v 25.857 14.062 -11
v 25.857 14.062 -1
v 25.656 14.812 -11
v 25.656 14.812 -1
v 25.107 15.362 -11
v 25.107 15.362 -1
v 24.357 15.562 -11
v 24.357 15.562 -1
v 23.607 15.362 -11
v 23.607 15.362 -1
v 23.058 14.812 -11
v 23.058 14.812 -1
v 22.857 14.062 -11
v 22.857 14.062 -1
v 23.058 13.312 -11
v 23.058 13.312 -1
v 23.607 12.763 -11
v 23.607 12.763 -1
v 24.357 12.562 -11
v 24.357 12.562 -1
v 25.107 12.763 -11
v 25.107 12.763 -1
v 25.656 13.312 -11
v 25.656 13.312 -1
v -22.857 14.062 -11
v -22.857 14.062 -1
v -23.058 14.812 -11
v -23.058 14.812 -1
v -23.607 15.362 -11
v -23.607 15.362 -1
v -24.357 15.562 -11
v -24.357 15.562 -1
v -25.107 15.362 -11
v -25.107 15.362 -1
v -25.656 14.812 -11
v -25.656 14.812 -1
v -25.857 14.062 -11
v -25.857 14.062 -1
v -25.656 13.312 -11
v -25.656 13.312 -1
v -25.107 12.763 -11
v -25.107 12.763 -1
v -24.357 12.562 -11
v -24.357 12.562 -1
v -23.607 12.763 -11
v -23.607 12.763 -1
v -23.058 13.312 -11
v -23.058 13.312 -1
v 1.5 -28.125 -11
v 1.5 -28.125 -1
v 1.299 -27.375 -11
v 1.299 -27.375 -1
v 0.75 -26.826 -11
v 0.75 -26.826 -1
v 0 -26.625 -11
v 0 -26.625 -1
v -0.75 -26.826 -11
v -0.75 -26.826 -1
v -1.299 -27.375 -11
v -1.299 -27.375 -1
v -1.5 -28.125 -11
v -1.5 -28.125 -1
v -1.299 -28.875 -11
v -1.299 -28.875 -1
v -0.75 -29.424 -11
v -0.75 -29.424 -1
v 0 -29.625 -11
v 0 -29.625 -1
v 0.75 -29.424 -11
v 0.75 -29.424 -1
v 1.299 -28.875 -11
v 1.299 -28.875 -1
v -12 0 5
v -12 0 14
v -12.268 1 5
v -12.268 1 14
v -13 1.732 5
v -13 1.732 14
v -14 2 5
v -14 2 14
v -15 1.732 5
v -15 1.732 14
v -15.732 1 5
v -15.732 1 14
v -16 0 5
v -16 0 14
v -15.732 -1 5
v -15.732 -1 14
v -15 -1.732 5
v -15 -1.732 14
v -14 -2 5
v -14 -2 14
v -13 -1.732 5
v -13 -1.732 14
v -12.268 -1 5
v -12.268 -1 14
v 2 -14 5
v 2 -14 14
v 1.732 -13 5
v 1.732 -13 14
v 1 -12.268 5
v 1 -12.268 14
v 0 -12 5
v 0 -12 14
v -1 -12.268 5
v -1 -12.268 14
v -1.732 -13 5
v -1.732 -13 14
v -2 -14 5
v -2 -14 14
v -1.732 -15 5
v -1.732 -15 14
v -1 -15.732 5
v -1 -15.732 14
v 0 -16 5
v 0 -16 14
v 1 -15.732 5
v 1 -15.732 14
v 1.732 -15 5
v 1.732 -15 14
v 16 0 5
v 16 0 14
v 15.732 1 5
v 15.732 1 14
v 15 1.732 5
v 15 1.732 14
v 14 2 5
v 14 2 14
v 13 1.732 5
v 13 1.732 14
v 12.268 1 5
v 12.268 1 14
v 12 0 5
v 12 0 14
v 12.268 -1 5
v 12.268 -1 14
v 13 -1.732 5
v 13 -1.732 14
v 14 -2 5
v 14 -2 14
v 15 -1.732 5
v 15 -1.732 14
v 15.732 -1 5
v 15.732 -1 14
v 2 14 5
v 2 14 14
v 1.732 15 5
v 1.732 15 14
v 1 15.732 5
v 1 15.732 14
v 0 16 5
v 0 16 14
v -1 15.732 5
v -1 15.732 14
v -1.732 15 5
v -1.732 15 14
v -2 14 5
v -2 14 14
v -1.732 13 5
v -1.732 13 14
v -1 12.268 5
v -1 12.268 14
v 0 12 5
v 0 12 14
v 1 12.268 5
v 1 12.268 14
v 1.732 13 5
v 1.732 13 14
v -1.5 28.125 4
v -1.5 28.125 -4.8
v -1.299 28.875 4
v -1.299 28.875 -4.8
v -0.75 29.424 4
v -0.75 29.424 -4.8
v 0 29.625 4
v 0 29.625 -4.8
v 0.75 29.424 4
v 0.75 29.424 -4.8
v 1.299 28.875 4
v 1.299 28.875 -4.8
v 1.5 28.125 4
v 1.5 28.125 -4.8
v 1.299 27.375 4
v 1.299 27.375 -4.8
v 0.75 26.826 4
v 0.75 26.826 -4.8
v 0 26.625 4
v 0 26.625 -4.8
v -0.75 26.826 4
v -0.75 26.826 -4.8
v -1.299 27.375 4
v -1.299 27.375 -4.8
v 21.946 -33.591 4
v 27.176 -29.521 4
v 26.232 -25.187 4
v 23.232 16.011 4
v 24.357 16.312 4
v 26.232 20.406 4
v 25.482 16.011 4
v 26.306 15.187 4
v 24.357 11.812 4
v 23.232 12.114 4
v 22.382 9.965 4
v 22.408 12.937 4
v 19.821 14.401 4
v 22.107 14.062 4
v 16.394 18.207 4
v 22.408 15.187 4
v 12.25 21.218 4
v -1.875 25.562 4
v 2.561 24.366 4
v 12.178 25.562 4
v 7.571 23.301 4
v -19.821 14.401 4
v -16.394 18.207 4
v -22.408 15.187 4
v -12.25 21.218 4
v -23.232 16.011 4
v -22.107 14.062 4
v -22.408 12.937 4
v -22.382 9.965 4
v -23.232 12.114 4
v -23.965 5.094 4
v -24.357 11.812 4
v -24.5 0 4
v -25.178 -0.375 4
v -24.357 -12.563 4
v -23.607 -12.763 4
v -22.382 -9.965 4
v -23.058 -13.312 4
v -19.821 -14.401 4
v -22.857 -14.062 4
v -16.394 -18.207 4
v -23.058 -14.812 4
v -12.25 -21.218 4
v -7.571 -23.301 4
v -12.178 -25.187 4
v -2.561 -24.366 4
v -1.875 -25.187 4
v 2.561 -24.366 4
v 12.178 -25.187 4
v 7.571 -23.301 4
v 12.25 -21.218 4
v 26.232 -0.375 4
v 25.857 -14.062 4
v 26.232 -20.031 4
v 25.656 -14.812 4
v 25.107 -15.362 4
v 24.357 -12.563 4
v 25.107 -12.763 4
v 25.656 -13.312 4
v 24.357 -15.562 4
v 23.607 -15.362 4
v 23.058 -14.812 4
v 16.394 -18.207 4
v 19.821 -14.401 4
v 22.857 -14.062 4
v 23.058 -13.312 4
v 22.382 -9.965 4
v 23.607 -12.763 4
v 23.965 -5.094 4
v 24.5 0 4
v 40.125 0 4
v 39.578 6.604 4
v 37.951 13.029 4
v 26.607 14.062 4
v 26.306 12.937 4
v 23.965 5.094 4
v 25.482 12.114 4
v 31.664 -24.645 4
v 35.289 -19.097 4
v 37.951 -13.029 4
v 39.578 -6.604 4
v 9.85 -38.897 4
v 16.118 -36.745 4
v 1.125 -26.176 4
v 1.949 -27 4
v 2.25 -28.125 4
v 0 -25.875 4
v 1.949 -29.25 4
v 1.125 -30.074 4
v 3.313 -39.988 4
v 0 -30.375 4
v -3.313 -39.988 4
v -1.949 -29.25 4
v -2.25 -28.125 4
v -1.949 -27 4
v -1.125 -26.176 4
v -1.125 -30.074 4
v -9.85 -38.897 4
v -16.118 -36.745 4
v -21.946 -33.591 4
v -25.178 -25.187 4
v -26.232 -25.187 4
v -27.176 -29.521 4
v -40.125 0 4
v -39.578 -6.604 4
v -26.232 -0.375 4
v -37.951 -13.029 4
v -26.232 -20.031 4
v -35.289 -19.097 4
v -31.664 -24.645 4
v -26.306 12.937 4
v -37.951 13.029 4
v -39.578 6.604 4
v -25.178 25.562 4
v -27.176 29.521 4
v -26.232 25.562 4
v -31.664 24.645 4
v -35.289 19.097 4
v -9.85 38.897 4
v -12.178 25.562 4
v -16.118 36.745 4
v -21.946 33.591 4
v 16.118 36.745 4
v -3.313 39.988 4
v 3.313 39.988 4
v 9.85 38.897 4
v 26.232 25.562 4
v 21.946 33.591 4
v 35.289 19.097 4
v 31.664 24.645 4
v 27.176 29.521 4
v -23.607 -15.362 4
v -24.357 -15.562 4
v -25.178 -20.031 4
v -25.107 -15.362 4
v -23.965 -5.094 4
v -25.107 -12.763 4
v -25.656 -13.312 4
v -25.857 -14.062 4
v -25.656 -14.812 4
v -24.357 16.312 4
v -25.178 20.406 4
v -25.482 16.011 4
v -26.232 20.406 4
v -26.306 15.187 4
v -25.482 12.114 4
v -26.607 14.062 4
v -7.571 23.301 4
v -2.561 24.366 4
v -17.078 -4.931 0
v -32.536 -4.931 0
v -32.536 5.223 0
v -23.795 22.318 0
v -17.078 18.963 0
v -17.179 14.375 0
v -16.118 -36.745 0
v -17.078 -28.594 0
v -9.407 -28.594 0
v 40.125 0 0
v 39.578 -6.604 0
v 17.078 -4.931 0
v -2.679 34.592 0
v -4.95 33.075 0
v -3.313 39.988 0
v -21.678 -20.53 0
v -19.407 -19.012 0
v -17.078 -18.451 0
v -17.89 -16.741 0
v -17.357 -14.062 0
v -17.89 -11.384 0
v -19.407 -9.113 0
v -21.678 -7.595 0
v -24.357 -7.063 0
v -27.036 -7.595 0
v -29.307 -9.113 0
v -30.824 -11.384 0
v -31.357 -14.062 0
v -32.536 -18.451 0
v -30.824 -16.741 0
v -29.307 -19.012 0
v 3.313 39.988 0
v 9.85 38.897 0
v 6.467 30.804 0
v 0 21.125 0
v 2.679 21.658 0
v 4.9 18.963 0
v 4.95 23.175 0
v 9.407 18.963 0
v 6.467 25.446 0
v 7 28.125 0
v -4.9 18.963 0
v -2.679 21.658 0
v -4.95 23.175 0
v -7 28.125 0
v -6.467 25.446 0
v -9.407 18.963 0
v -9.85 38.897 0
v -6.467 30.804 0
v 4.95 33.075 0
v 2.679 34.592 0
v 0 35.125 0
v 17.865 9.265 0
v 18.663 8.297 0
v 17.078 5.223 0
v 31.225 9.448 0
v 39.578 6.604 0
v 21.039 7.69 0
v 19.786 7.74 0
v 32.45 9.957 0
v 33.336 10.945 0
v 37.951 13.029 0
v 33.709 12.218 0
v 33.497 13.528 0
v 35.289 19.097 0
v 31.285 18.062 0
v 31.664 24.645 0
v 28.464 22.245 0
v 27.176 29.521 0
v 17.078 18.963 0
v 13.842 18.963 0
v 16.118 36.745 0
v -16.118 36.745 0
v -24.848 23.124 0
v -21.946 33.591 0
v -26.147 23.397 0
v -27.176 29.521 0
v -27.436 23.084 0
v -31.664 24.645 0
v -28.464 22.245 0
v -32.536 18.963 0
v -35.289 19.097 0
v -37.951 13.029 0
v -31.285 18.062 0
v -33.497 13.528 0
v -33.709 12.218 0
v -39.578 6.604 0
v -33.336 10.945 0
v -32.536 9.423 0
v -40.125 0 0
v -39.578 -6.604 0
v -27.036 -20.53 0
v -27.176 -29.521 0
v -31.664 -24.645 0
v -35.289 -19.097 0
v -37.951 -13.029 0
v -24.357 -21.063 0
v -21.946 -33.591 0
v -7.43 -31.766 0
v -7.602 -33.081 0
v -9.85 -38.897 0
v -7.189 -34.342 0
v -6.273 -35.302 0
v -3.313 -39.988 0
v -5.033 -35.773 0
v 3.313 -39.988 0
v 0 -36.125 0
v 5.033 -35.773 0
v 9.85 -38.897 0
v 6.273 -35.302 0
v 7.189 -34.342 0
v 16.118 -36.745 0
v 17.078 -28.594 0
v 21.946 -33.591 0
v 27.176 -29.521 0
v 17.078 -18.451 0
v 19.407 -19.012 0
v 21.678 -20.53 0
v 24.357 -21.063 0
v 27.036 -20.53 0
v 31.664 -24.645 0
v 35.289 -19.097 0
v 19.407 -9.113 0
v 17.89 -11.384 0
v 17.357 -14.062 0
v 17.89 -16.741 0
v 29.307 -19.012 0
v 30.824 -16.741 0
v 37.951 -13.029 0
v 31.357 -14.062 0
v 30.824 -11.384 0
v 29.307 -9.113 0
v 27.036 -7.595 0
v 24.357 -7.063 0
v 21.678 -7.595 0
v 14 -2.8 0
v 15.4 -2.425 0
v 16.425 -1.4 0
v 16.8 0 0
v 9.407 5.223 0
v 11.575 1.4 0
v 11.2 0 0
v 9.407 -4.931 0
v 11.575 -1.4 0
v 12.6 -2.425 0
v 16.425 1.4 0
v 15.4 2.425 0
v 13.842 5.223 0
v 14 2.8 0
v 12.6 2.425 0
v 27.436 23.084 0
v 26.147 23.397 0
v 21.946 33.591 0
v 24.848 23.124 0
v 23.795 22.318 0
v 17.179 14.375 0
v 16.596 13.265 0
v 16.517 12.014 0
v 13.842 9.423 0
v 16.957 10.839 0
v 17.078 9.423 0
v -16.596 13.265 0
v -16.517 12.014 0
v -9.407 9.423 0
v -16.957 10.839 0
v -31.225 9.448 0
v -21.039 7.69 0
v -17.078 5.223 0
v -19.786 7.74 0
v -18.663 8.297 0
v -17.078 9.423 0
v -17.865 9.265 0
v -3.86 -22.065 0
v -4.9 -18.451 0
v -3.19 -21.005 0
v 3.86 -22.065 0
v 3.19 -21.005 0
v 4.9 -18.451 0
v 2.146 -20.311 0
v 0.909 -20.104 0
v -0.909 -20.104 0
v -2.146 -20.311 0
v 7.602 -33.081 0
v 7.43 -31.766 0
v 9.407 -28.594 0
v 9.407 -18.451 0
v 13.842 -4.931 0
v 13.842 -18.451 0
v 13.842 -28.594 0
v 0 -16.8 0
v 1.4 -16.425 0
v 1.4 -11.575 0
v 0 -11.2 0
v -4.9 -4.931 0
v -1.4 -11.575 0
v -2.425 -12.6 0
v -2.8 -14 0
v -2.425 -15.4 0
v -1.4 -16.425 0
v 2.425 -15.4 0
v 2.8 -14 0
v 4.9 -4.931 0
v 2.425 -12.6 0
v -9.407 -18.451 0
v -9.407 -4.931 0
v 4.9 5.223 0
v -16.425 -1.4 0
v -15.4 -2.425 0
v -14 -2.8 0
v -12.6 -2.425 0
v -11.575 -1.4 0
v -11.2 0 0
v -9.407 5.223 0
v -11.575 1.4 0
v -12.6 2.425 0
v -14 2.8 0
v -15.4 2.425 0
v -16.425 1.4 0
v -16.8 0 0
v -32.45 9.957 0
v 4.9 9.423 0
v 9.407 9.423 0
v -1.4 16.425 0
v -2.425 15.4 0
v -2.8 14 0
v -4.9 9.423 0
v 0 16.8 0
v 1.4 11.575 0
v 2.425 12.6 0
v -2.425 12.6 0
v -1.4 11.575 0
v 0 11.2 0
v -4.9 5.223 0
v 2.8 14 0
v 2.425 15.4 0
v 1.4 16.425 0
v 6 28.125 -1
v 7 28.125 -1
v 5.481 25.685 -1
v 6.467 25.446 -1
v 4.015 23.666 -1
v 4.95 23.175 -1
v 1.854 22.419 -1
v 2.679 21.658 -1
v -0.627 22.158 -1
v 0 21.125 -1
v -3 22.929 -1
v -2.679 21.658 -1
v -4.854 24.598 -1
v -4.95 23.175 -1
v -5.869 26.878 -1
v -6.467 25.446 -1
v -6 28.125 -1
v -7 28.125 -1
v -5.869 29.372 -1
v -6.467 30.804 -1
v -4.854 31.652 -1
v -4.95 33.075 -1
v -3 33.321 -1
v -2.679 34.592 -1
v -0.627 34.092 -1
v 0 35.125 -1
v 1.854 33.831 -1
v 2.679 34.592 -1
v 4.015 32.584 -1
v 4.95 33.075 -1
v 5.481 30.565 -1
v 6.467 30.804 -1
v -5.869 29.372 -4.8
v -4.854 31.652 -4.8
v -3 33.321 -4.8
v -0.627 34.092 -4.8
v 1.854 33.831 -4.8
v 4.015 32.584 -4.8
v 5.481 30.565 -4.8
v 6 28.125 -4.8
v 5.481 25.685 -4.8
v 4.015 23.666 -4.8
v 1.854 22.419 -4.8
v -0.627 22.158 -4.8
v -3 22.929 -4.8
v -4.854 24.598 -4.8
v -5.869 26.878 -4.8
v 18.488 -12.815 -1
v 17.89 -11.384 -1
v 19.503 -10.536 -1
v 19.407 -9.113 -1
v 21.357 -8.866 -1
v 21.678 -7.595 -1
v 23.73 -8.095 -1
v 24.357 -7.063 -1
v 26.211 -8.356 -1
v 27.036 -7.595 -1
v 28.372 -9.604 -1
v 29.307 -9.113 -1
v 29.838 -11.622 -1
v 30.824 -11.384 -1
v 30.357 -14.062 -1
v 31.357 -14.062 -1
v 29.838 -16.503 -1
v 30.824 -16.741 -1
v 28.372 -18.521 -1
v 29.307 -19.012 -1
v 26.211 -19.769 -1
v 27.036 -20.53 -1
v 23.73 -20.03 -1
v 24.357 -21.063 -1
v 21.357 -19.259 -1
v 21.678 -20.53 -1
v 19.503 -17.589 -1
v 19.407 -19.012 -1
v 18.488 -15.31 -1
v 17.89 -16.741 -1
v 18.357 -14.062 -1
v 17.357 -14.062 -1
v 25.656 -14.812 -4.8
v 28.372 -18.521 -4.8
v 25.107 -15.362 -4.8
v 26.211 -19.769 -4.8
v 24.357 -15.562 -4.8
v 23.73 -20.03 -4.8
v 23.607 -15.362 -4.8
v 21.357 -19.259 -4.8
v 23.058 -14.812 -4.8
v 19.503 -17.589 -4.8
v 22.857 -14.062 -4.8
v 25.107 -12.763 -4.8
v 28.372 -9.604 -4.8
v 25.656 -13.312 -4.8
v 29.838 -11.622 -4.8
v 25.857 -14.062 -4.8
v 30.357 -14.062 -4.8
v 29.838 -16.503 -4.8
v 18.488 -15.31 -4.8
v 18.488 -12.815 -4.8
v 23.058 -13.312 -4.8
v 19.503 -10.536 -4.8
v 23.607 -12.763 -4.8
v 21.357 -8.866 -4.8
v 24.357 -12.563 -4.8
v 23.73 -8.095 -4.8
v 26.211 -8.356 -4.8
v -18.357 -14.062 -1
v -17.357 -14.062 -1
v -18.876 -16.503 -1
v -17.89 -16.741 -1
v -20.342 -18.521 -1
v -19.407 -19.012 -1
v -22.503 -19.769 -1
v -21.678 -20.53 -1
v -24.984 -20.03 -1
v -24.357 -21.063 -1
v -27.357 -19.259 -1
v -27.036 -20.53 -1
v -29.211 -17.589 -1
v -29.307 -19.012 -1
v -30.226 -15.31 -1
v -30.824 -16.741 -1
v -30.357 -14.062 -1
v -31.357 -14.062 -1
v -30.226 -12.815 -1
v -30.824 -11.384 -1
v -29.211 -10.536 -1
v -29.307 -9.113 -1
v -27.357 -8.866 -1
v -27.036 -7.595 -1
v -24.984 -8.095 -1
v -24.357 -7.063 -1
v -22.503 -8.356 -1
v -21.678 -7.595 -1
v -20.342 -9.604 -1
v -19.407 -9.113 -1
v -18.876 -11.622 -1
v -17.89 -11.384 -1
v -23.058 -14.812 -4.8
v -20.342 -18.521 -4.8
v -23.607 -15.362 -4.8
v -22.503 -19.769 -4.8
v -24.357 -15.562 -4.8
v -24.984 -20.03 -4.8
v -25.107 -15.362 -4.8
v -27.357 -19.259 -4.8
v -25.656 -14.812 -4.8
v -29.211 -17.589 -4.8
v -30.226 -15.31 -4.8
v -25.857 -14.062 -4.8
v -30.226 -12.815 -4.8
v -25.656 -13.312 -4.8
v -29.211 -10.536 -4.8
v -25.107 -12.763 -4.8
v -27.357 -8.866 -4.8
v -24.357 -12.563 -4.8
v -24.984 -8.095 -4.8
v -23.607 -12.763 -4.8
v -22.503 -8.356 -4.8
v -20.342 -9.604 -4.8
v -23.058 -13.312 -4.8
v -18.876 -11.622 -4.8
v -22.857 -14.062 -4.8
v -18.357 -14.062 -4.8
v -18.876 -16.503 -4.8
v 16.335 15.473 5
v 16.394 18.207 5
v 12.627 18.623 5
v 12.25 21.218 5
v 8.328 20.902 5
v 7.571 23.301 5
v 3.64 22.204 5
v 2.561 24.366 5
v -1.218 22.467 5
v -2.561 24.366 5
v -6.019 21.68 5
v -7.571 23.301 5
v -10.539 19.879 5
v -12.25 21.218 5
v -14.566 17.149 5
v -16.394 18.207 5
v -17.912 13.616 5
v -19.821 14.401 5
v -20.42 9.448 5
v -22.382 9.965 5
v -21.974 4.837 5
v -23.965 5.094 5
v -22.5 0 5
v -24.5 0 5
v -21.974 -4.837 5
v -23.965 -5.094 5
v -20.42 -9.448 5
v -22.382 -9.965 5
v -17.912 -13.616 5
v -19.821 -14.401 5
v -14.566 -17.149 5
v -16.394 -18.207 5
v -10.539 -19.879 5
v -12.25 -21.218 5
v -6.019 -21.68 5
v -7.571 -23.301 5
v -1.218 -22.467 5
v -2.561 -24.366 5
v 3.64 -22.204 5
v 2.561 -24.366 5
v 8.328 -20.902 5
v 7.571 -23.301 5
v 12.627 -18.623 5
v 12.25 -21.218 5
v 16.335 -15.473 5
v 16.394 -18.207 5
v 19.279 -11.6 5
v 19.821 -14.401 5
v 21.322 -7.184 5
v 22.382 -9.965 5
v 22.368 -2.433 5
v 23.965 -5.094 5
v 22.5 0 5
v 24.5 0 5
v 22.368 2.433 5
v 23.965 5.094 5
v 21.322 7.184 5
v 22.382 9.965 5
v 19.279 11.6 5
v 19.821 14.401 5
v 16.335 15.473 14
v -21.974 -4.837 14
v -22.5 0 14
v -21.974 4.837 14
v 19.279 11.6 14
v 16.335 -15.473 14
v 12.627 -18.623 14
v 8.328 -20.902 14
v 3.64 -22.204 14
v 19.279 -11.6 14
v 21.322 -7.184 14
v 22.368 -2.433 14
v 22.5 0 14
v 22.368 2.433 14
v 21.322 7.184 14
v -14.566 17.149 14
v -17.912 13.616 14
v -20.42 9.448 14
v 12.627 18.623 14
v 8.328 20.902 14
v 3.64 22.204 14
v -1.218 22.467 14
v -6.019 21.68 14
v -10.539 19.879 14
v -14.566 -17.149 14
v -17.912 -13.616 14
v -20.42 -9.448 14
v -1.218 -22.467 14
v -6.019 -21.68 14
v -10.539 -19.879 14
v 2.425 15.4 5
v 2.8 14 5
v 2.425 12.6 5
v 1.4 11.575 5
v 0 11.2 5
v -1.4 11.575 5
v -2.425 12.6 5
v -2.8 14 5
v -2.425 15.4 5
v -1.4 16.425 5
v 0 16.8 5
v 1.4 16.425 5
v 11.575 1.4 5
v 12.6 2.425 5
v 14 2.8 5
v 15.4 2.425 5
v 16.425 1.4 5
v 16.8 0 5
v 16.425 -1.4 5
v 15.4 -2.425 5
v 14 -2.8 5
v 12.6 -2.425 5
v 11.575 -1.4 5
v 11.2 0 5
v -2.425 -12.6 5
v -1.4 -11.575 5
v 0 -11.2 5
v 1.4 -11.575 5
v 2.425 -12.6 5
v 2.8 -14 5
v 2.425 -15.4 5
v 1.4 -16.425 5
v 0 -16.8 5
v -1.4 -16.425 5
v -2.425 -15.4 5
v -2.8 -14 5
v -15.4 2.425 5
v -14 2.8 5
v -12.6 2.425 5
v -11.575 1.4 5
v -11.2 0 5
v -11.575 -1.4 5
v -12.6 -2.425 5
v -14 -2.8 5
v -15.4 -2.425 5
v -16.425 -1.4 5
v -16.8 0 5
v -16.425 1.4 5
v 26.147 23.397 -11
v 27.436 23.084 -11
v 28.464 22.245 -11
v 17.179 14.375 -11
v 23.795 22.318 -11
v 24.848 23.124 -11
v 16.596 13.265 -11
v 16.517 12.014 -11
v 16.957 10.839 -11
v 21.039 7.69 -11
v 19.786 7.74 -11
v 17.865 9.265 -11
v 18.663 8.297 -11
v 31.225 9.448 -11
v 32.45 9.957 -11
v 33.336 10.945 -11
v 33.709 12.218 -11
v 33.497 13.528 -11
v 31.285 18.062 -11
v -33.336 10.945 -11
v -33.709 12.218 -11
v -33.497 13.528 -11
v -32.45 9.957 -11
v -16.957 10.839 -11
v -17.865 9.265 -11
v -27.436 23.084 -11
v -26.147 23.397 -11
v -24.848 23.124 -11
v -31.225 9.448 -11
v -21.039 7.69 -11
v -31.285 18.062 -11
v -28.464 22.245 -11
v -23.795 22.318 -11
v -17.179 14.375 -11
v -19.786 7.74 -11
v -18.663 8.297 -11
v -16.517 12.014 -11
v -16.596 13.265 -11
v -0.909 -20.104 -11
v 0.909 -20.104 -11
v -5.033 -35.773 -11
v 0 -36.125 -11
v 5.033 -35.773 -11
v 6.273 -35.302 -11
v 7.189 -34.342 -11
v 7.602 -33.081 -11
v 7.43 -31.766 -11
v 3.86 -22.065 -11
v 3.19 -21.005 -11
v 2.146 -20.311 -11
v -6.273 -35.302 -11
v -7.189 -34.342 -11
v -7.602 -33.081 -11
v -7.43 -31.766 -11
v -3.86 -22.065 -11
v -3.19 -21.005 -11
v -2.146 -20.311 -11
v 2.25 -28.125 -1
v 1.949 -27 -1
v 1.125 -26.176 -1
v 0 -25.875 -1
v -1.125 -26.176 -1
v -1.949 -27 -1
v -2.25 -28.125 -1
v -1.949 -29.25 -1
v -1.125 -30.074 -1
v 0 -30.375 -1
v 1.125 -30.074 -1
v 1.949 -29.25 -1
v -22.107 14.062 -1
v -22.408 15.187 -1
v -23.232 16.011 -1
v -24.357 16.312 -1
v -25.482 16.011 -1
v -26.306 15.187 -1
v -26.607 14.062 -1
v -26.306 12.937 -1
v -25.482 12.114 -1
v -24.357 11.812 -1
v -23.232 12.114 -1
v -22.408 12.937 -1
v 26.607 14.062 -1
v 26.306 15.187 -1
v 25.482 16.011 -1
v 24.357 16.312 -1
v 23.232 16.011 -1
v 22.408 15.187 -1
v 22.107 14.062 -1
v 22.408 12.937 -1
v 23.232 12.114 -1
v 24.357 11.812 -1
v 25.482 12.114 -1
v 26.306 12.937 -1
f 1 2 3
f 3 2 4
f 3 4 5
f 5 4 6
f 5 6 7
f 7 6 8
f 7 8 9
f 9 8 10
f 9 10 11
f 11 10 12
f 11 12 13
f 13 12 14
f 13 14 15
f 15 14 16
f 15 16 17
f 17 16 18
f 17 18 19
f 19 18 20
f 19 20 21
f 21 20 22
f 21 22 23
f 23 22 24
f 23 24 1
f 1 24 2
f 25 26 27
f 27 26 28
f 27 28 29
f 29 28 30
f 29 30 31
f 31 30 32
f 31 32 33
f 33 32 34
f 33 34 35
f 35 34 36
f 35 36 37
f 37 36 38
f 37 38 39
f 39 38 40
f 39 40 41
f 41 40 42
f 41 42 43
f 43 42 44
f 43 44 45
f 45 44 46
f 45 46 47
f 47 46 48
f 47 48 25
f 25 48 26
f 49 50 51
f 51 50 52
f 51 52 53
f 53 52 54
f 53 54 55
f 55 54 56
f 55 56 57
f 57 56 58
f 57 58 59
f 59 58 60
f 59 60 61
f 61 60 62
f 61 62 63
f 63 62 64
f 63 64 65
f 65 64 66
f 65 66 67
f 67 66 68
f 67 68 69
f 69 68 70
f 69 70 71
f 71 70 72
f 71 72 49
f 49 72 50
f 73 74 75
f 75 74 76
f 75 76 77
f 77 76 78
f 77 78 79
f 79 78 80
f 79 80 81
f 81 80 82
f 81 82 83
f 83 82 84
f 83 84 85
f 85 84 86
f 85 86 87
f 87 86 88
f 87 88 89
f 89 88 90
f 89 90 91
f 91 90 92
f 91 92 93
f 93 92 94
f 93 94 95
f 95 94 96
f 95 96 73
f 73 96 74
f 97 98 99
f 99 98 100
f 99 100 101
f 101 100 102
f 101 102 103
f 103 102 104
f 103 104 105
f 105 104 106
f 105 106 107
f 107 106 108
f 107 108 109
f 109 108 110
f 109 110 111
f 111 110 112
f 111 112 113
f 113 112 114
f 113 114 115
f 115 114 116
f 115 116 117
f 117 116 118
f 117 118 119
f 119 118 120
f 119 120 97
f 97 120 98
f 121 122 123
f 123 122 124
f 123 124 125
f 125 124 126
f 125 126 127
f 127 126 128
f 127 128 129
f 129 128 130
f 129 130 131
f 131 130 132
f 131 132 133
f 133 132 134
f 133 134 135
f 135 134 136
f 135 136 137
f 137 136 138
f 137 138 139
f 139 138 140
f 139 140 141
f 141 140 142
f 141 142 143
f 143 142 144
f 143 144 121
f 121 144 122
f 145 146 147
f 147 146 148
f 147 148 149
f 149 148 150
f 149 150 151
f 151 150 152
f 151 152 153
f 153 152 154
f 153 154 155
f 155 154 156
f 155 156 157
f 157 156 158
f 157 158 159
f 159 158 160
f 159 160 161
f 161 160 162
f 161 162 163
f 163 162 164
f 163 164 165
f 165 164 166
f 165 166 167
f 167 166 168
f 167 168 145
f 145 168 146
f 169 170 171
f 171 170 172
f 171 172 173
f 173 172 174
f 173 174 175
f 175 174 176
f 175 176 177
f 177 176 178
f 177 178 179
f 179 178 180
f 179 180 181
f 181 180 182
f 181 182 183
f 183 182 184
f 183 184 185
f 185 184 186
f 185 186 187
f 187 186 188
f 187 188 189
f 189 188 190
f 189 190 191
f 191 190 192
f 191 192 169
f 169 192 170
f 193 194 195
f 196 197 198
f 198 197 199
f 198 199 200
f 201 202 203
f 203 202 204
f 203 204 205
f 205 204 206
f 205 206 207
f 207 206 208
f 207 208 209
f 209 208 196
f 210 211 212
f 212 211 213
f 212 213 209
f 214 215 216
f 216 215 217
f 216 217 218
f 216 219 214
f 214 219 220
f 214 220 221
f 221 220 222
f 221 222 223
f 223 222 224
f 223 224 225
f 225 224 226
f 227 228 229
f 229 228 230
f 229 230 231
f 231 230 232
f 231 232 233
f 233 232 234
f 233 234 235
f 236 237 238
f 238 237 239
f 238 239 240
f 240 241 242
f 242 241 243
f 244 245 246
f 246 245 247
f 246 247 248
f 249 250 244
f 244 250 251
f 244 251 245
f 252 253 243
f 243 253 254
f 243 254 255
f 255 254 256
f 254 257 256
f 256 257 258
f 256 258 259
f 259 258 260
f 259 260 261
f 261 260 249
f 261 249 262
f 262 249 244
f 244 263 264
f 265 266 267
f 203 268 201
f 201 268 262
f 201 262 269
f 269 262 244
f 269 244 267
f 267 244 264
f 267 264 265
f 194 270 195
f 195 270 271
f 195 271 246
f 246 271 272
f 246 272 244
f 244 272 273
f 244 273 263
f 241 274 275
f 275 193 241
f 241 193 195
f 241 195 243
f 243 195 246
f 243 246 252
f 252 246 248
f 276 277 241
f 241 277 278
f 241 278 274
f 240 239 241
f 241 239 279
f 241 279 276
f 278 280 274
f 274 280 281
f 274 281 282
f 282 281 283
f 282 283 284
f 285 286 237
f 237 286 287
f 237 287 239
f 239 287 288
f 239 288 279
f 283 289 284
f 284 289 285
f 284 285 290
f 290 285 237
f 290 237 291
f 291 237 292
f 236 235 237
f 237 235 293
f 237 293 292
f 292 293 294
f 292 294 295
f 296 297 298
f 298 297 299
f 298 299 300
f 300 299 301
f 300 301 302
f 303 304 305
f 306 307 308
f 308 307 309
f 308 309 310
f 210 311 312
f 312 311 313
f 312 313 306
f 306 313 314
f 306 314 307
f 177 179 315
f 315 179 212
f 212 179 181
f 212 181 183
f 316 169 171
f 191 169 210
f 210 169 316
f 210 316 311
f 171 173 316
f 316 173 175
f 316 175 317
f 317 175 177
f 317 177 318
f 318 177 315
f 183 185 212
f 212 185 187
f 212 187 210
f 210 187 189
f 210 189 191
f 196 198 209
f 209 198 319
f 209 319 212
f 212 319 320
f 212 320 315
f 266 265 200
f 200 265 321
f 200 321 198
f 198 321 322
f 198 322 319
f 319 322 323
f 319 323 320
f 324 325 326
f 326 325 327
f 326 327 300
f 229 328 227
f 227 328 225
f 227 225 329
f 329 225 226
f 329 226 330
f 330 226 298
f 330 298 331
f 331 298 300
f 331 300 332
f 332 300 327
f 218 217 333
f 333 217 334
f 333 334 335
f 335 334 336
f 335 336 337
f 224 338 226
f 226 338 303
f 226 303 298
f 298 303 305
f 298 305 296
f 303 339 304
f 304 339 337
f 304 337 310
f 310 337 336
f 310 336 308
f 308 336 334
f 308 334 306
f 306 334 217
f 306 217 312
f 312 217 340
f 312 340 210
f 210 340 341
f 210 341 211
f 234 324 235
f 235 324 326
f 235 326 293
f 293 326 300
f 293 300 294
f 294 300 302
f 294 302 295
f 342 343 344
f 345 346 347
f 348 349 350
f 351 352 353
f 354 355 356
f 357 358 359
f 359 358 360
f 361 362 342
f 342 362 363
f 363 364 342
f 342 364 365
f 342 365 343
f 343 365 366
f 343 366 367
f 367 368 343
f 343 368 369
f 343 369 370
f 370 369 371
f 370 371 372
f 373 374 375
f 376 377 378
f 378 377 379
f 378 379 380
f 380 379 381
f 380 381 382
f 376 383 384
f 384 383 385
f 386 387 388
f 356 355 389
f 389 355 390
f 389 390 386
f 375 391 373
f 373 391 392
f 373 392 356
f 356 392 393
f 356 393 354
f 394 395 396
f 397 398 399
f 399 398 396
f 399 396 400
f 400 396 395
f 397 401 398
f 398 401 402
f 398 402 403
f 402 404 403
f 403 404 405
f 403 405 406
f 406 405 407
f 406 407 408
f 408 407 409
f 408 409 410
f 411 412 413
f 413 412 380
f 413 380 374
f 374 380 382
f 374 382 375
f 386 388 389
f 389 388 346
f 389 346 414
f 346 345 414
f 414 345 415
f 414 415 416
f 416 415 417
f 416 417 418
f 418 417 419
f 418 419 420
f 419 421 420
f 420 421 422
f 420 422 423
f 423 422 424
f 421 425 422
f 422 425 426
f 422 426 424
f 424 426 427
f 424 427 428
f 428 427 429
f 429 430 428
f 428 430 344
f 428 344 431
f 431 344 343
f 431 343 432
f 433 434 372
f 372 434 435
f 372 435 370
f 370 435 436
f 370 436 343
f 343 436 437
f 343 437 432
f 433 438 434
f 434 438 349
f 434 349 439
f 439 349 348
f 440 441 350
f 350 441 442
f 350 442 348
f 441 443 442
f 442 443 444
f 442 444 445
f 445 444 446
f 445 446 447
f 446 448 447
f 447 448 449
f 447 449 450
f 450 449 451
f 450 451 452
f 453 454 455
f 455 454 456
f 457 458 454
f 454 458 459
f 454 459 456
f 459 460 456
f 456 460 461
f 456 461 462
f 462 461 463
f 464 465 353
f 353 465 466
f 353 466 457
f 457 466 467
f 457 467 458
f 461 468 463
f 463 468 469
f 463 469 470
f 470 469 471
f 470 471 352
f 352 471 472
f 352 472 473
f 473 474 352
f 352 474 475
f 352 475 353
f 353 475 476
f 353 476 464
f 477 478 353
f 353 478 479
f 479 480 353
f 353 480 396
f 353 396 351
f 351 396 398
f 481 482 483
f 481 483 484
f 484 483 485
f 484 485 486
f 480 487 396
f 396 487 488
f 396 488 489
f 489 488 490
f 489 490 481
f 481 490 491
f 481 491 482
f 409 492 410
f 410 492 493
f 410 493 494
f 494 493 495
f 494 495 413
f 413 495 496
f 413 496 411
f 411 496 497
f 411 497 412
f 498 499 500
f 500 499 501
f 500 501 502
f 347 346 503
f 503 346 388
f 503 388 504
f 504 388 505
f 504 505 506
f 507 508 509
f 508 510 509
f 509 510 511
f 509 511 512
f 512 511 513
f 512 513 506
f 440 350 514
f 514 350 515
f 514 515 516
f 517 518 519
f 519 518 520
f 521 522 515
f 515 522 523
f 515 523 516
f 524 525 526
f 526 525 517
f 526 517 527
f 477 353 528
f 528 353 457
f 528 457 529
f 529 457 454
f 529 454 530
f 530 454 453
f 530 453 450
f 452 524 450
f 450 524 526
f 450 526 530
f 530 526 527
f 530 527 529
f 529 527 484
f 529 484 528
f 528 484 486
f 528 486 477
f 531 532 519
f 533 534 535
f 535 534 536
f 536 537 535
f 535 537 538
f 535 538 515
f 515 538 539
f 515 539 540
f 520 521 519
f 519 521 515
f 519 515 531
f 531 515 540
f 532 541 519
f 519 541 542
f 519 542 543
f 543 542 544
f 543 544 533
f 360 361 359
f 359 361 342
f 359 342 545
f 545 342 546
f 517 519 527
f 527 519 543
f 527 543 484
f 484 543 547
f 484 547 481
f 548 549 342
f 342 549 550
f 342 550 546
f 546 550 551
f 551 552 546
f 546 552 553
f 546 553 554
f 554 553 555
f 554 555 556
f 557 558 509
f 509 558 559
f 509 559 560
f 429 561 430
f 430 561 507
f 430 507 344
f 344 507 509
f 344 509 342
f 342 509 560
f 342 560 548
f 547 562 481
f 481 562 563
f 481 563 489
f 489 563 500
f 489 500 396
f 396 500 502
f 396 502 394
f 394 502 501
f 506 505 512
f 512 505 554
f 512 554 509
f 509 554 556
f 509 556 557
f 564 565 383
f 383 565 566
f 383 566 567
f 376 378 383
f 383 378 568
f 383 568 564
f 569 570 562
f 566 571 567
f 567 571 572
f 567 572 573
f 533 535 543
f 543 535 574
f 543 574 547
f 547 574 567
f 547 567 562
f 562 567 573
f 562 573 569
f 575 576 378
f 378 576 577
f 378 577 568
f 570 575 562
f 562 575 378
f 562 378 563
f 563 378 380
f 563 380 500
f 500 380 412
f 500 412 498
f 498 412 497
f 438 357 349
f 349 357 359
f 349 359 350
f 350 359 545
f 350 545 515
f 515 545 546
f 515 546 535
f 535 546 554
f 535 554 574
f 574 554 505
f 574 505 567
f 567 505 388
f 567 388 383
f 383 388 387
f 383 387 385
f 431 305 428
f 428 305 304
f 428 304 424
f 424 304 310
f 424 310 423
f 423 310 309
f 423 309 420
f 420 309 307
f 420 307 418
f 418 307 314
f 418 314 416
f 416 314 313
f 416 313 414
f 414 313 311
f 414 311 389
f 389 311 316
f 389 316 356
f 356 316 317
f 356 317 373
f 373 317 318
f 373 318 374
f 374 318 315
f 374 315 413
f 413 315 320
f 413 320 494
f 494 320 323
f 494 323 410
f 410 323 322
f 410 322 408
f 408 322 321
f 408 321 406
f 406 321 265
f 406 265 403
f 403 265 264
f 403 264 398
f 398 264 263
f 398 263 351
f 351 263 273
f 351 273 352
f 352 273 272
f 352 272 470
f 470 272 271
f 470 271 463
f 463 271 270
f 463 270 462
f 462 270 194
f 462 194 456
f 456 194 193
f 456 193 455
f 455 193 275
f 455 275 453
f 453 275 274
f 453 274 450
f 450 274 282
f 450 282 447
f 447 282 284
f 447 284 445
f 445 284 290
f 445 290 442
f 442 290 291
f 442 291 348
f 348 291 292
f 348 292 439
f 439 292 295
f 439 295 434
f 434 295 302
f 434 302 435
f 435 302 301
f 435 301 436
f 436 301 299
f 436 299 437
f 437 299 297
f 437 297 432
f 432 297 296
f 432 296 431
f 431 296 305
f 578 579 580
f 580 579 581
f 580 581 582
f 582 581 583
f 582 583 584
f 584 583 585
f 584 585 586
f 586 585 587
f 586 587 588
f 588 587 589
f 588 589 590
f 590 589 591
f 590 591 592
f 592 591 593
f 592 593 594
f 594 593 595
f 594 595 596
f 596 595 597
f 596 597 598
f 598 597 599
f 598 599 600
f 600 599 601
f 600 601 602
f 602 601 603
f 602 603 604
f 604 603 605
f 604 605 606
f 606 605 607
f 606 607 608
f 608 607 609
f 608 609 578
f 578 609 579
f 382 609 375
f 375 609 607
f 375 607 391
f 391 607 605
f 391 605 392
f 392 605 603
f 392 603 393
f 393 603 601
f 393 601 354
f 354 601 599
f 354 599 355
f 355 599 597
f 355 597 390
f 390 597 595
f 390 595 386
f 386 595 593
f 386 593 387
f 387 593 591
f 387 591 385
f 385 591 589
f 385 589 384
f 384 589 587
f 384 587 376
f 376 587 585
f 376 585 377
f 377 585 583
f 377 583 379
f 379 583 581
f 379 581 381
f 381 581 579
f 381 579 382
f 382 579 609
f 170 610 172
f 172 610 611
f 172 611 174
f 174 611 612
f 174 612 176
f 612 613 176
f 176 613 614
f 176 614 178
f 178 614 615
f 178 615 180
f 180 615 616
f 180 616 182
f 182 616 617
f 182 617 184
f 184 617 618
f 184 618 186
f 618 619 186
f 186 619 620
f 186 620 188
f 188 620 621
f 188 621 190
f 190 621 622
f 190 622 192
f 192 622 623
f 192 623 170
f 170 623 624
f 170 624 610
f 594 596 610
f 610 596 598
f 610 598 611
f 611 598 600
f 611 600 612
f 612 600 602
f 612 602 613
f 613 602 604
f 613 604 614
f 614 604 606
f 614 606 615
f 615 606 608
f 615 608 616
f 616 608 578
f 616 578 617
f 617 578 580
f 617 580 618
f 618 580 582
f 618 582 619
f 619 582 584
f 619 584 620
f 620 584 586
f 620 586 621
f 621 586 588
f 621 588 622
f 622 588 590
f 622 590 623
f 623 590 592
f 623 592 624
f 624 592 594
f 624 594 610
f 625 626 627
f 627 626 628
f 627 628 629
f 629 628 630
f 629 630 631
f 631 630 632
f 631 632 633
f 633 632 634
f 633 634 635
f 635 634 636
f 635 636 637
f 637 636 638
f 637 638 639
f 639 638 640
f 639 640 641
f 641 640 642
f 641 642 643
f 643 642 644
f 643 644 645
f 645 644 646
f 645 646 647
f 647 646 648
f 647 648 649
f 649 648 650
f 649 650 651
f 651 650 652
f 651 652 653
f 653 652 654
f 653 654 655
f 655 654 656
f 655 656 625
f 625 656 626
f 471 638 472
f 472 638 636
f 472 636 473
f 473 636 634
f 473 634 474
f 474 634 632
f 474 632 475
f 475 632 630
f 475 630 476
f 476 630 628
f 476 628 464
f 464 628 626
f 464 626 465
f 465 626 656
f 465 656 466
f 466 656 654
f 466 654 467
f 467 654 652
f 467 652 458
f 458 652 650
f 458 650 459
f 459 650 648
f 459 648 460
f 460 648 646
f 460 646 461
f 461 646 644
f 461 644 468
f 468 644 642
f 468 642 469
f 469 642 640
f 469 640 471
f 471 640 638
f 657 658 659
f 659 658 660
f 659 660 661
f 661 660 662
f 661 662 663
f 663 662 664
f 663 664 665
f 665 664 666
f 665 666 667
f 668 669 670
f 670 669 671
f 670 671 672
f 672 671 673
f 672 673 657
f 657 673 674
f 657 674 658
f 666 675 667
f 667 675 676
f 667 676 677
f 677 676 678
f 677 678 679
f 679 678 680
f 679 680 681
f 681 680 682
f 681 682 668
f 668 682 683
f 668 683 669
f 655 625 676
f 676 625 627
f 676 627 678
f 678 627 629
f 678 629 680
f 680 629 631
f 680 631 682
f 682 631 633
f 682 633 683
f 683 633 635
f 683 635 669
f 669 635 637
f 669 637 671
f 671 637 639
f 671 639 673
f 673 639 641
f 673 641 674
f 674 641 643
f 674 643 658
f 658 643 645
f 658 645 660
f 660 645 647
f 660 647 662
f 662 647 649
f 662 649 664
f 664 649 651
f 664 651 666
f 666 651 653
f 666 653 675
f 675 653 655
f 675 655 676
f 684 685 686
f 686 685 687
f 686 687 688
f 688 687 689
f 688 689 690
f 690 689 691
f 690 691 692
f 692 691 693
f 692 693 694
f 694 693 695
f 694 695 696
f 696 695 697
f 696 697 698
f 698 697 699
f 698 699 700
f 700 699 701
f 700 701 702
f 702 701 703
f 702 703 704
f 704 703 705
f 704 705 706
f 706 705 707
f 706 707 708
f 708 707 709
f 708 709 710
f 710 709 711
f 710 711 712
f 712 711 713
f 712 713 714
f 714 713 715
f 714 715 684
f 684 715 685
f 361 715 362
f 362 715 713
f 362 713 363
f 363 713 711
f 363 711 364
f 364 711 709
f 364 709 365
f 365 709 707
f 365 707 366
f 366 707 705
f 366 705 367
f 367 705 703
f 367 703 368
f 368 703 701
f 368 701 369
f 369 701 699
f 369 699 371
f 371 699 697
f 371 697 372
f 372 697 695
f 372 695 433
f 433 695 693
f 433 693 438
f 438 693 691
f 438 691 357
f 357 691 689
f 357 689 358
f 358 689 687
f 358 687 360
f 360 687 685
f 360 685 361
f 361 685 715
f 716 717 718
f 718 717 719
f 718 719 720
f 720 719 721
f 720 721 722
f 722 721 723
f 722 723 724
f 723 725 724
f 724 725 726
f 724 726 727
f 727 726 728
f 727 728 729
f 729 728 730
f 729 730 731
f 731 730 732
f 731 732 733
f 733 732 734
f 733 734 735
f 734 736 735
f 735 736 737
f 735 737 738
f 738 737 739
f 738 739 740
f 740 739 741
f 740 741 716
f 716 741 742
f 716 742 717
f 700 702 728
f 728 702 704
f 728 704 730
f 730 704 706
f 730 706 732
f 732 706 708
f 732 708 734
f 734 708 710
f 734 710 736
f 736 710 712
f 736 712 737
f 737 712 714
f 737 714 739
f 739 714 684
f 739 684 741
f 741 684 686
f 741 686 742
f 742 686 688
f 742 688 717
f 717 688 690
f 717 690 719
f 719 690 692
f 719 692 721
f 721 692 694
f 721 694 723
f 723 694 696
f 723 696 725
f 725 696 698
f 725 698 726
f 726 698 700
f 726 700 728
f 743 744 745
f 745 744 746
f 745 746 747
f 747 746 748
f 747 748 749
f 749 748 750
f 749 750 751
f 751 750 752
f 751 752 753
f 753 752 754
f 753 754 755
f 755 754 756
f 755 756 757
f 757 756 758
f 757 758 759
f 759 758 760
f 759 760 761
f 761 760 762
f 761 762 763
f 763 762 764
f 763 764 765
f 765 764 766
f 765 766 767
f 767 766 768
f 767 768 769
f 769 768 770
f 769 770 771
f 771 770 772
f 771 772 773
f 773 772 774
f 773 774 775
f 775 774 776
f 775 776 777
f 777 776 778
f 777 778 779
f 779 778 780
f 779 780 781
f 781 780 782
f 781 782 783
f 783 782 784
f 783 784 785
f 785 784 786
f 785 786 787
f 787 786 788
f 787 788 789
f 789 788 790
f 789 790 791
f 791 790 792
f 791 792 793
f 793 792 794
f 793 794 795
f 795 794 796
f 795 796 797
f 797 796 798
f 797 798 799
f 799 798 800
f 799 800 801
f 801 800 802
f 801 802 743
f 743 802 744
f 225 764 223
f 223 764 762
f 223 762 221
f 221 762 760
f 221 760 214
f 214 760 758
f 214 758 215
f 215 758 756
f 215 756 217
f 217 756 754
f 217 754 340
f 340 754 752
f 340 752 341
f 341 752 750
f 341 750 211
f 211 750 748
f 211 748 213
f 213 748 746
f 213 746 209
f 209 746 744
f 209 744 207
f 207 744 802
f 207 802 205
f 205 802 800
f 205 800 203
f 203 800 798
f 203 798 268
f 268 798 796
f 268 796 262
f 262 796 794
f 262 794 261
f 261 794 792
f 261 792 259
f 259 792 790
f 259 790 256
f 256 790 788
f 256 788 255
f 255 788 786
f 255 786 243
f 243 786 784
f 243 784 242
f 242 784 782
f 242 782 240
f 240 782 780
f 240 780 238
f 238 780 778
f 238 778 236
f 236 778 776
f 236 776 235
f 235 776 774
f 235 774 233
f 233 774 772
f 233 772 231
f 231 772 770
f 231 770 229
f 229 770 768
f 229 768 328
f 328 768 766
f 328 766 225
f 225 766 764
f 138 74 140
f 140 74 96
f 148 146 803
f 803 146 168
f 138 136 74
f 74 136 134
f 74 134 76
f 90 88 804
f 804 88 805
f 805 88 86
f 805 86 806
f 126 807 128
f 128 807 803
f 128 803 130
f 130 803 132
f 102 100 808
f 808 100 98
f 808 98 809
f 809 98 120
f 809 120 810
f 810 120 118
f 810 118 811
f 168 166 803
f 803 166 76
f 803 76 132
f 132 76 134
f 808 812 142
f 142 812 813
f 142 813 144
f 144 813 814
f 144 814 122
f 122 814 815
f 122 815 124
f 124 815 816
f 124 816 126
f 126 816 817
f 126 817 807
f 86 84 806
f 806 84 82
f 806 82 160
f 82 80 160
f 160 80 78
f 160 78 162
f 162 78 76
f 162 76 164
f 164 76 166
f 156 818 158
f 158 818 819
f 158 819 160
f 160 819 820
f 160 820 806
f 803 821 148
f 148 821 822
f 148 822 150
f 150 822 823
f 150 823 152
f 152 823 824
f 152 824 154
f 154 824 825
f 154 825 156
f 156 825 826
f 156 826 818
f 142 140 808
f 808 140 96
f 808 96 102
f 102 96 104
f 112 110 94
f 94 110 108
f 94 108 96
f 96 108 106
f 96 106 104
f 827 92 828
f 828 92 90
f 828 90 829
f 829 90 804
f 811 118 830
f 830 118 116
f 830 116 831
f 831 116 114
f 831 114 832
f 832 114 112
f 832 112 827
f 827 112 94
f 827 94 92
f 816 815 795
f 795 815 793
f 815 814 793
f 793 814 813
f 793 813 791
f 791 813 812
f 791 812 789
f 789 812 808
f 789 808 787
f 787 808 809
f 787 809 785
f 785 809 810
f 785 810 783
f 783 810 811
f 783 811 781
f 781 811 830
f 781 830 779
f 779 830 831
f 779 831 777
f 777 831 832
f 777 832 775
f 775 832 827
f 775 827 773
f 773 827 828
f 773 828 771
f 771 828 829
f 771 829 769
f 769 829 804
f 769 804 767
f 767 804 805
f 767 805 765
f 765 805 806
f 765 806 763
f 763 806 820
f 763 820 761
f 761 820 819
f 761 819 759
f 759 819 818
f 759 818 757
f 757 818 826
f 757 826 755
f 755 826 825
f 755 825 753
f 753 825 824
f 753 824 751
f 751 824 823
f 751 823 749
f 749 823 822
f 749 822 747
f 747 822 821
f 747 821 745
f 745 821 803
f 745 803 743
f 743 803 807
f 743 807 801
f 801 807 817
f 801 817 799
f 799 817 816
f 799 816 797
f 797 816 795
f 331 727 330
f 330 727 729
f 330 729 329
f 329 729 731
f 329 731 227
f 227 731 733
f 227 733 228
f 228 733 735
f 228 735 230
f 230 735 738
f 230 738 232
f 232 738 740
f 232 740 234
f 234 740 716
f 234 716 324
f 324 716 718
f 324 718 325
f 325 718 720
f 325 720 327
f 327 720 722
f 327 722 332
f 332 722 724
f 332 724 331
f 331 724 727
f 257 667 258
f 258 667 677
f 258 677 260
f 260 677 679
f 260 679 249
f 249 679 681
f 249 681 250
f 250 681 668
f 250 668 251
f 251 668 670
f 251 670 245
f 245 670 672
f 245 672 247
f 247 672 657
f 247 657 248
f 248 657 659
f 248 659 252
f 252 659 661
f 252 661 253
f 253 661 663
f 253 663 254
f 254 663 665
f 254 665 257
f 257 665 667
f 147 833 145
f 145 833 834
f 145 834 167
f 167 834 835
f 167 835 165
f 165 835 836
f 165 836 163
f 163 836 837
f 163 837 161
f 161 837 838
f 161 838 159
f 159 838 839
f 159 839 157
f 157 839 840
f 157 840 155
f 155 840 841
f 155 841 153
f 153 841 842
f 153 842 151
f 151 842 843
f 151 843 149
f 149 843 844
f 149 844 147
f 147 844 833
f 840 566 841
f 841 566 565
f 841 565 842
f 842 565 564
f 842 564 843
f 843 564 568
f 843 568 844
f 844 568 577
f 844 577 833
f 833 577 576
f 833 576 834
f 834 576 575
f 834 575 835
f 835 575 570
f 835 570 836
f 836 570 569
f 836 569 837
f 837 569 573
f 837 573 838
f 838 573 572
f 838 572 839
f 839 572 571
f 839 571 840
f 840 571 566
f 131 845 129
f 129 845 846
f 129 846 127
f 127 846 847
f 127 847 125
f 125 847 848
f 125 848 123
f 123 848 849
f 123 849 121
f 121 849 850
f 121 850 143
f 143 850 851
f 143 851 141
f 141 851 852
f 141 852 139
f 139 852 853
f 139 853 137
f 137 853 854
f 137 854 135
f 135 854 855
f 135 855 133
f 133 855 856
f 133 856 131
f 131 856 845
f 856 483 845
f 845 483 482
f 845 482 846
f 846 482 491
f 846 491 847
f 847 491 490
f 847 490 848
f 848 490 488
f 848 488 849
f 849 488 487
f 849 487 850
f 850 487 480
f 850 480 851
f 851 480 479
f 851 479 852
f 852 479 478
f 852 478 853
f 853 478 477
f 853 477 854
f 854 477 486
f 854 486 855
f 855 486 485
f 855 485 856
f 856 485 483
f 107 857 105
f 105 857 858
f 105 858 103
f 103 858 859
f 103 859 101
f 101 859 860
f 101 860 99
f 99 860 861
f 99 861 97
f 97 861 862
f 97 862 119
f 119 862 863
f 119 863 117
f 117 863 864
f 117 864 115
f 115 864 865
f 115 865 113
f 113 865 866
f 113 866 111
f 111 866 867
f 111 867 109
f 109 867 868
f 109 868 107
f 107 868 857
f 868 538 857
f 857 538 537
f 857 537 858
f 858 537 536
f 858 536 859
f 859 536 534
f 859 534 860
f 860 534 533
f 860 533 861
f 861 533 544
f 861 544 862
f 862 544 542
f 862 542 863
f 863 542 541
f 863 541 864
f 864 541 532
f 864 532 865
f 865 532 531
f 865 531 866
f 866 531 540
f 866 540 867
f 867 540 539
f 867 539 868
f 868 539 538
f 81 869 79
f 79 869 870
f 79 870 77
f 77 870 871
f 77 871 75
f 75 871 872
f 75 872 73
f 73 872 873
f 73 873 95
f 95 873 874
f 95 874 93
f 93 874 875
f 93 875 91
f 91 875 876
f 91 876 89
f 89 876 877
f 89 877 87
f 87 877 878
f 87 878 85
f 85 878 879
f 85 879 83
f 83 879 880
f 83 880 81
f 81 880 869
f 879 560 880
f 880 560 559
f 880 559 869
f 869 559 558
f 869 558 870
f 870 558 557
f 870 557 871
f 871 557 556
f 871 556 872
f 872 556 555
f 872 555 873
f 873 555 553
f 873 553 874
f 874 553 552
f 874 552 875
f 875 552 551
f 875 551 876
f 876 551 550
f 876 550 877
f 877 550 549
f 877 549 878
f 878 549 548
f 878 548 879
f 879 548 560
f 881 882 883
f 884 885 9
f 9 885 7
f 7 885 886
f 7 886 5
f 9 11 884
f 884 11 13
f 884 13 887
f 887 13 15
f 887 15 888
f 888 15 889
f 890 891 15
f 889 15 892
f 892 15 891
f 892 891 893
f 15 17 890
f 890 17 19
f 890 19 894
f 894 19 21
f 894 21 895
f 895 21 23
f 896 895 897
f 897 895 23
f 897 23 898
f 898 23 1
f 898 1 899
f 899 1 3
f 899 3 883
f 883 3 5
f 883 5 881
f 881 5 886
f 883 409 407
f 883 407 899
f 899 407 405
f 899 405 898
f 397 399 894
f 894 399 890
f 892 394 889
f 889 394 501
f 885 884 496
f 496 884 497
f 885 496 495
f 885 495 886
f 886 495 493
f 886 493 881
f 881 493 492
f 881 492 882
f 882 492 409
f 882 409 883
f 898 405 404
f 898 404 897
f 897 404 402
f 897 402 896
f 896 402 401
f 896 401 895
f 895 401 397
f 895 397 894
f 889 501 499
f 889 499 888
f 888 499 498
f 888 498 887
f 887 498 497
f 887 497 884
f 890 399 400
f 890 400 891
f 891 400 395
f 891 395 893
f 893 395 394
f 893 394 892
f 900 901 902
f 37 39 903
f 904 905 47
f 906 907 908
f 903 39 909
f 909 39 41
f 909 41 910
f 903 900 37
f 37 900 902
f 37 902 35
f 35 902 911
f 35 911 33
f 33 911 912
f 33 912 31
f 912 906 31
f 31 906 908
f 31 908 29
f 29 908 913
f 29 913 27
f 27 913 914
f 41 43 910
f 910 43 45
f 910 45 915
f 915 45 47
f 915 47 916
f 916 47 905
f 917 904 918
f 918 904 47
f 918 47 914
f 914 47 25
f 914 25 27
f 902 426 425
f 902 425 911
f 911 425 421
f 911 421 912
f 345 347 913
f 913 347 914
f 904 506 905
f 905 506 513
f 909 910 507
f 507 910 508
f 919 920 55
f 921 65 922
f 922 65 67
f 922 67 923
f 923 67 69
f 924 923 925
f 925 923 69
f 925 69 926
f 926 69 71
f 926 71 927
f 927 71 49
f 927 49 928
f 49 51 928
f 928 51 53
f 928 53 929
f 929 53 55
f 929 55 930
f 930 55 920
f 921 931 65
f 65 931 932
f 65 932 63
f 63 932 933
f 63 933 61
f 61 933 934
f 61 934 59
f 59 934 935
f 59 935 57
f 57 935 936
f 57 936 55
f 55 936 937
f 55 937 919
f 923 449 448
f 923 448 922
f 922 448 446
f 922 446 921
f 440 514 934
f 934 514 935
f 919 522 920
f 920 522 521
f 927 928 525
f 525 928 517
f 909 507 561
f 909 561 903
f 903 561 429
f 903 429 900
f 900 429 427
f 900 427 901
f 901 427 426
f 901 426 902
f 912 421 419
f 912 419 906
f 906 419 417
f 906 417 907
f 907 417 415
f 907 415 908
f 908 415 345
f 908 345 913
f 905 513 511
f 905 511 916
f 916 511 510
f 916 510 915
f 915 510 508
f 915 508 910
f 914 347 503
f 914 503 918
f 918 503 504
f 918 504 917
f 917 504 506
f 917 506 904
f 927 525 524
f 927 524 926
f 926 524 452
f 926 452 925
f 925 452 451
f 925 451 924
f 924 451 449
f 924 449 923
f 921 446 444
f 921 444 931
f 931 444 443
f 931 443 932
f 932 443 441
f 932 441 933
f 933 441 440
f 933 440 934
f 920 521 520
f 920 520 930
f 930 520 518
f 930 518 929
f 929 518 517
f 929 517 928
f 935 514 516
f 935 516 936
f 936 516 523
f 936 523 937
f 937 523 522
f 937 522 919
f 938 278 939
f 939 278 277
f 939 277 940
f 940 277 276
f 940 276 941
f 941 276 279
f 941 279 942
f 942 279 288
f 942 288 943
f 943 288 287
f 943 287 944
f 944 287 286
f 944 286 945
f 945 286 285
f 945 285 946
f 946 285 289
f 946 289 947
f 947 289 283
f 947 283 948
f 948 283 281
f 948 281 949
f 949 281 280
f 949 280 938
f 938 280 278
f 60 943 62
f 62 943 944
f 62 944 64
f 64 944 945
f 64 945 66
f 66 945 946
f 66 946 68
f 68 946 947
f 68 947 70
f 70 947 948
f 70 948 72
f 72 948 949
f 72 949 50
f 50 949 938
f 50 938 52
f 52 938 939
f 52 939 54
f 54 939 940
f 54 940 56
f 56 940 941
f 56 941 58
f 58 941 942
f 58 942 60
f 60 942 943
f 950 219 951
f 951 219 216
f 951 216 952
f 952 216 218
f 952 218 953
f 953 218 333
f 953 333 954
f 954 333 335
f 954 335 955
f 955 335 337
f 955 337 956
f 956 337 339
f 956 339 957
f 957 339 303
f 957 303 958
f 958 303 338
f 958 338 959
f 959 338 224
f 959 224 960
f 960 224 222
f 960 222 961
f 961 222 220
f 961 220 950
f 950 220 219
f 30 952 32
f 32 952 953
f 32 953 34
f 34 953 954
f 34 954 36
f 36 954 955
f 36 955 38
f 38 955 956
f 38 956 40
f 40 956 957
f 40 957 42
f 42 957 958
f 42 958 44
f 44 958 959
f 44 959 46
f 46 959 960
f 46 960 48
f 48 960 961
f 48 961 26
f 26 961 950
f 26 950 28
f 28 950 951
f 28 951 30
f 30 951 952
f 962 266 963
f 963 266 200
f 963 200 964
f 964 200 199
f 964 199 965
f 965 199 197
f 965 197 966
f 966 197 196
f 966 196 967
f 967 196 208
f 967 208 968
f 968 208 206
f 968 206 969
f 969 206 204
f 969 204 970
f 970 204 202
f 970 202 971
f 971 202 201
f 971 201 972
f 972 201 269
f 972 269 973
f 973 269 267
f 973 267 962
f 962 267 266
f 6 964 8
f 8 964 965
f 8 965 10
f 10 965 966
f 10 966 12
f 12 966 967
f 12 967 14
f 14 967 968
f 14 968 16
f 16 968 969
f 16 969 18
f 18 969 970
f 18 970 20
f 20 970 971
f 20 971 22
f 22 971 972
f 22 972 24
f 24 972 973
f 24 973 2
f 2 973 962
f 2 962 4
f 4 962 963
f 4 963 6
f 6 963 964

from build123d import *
from build123d.topology import SkipClean

# Parameters (mm, degrees)
SKETCH1_R                = 40.125
SKETCH1_R_2              = 6
BOSS_EXTRUDE1_DEPTH      = 4
SKETCH1_3_R              = 6
BOSS_EXTRUDE2_DEPTH      = 4.8
SKETCH2_R                = 7
SKETCH2_R_2              = 6
BOSS_EXTRUDE3_DEPTH      = 1
SKETCH3_R                = 22.5
BOSS_EXTRUDE4_DEPTH      = 10
SKETCH3_3_R              = 24.5
SKETCH3_3_R_2            = 22.5
BOSS_EXTRUDE5_DEPTH      = 1
SKETCH4_R                = 2
CUT_EXTRUDE1_DEPTH       = 60.778518299
SKETCH5_R                = 1.5
CUT_EXTRUDE2_DEPTH       = 60.778518299
SKETCH6_R                = 2.25
CUT_EXTRUDE3_DEPTH       = 5
SKETCH7_R                = 2.8
CUT_EXTRUDE4_DEPTH       = 5
CIRPATTERN2_COUNT        = 4
SKETCH8_R                = 1.5
BOSS_EXTRUDE6_DEPTH      = 11
FILLET1_R                = 3
SKETCH8_2_R              = 1.5
CUT_EXTRUDE5_DEPTH       = 59.446824122
CIRPATTERN3_COUNT        = 3
FILLET1_OF_CIRPATTERN3_R = 3
CIRPATTERN1_COUNT        = 6
SKETCH6_2_R              = 2.25
SKETCH6_2_R_2            = 1.5
BOSS_EXTRUDE7_DEPTH      = 5


with BuildPart() as part:
    # Sketch1 → Boss-Extrude1 (new body)
    # profile 1 of 4: a face of its own
    with BuildSketch(Plane.XY):
        Circle(SKETCH1_R)
        with Locations((0, 28.125)):
            Circle(SKETCH1_R_2, mode=Mode.SUBTRACT)
        with Locations((24.356964481, -14.0625)):
            Circle(SKETCH1_R_2, mode=Mode.SUBTRACT)
        with Locations((-24.356964481, -14.0625)):
            Circle(SKETCH1_R_2, mode=Mode.SUBTRACT)
    # profile 2 of 4: a face of its own
    with BuildSketch(Plane.XY):
        with Locations((0, 28.125)):
            Circle(SKETCH1_R_2)
    # profile 3 of 4: a face of its own
    with BuildSketch(Plane.XY):
        with Locations((-24.356964481, -14.0625)):
            Circle(SKETCH1_R_2)
    # profile 4 of 4: a face of its own
    with BuildSketch(Plane.XY):
        with Locations((24.356964481, -14.0625)):
            Circle(SKETCH1_R_2)
    extrude(amount=BOSS_EXTRUDE1_DEPTH)

    # Sketch1<3> → Boss-Extrude2 (add)
    with BuildSketch(Plane.XY):
        with Locations((0, 28.125)):
            Circle(SKETCH1_3_R)
        with Locations((24.356964481, -14.0625)):
            Circle(SKETCH1_3_R)
        with Locations((-24.356964481, -14.0625)):
            Circle(SKETCH1_3_R)
    extrude(amount=-BOSS_EXTRUDE2_DEPTH)

    # Sketch2 → Boss-Extrude3 (add)
    # profile 1 of 3: a face of its own
    with BuildSketch(Plane(origin=(0, 0, 0), x_dir=(-1, 0, 0), z_dir=(0, 0, -1))):
        with Locations(Location((0, 28.125, 0), (0, 0, 180))):
            Circle(SKETCH2_R)
        with Locations(Location((0, 28.125, 0), (0, 0, 180))):
            Circle(SKETCH2_R_2, mode=Mode.SUBTRACT)
    # profile 2 of 3: a face of its own
    with BuildSketch(Plane(origin=(0, 0, 0), x_dir=(-1, 0, 0), z_dir=(0, 0, -1))):
        with Locations(Location((-24.356964481, -14.0625, 0), (0, 0, 180))):
            Circle(SKETCH2_R)
        with Locations(Location((-24.356964481, -14.0625, 0), (0, 0, 180))):
            Circle(SKETCH2_R_2, mode=Mode.SUBTRACT)
    # profile 3 of 3: a face of its own
    with BuildSketch(Plane(origin=(0, 0, 0), x_dir=(-1, 0, 0), z_dir=(0, 0, -1))):
        with Locations(Location((24.356964481, -14.0625, 0), (0, 0, 180))):
            Circle(SKETCH2_R)
        with Locations(Location((24.356964481, -14.0625, 0), (0, 0, 180))):
            Circle(SKETCH2_R_2, mode=Mode.SUBTRACT)
    extrude(amount=BOSS_EXTRUDE3_DEPTH)

    # Sketch3 → Boss-Extrude4 (add)
    with BuildSketch(Plane.XY.offset(4)):
        Circle(SKETCH3_R)
    extrude(amount=BOSS_EXTRUDE4_DEPTH)

    # Sketch3<3> → Boss-Extrude5 (add)
    with BuildSketch(Plane.XY.offset(4)):
        Circle(SKETCH3_3_R)
        Circle(SKETCH3_3_R_2, mode=Mode.SUBTRACT)
    extrude(amount=BOSS_EXTRUDE5_DEPTH)

    # Sketch4 → Cut-Extrude1 (cut, through all)
    with BuildSketch(Plane.XY.offset(14)):
        with Locations((0, 14)):
            Circle(SKETCH4_R)
        with Locations((14, 0)):
            Circle(SKETCH4_R)
        with Locations((0, -14)):
            Circle(SKETCH4_R)
        with Locations((-14, 0)):
            Circle(SKETCH4_R)
    extrude(amount=-CUT_EXTRUDE1_DEPTH, mode=Mode.SUBTRACT)

    # Sketch5 → Cut-Extrude2 (cut, through all)
    with BuildSketch(Plane(origin=(0, 0, -4.8), x_dir=(-1, 0, 0), z_dir=(0, 0, -1))):
        with Locations((0, 28.125)):
            Circle(SKETCH5_R)
        with Locations((24.356964481, -14.0625)):
            Circle(SKETCH5_R)
        with Locations((-24.356964481, -14.0625)):
            Circle(SKETCH5_R)
    extrude(amount=-CUT_EXTRUDE2_DEPTH, mode=Mode.SUBTRACT)

    # Sketch6 → Cut-Extrude3 (cut)
    with BuildSketch(Plane.XY.offset(4)):
        with Locations((0, 28.125)):
            Circle(SKETCH6_R)
    cut_extrude3 = extrude(amount=-CUT_EXTRUDE3_DEPTH, mode=Mode.SUBTRACT)

    # Sketch7 → Cut-Extrude4 (cut)
    with BuildSketch(Plane(origin=(0, 0, 0), x_dir=(-1, 0, 0), z_dir=(0, 0, -1))):
        with Locations((0, 14)):
            Circle(SKETCH7_R)
    cut_extrude4 = extrude(amount=-CUT_EXTRUDE4_DEPTH, mode=Mode.SUBTRACT)

    # CirPattern2: Cut-Extrude4 ×4 about axis
    cirpattern2_axis = Axis((0, 0, 0), (0, 0, 1))
    for i in range(1, CIRPATTERN2_COUNT):
        add(cut_extrude4.rotate(cirpattern2_axis, i * 360 / CIRPATTERN2_COUNT), mode=Mode.SUBTRACT)

    # Sketch8 → Boss-Extrude6 (add)
    with BuildSketch(Plane(origin=(0, 0, 0), x_dir=(-1, 0, 0), z_dir=(0, 0, -1))):
        with BuildLine():
            Line((-26.05133243, 25.026859644), (-15.696526212, 12.595026394))
            ThreePointArc((-15.696526212, 12.595026394), (-17.428761251, 10.0625), (-18.755875925, 7.296077254))
            Line((-18.755875925, 7.296077254), (-34.699562443, 10.047685865))
            ThreePointArc((-34.699562443, 10.047685865), (-31.285167712, 18.0625), (-26.05133243, 25.026859644))
        make_face()
        with Locations((-24.356964481, 14.0625)):
            Circle(SKETCH8_R, mode=Mode.SUBTRACT)
    boss_extrude6 = extrude(amount=BOSS_EXTRUDE6_DEPTH)

    # Fillet1
    fillet1_edges = [part.edges().sort_by_distance(p)[0] for p in [
        (26.05133243, 25.026859644, -5.5),
        (34.699562443, 10.047685865, -5.5),
        (18.755875925, 7.296077254, -5.5),
        (15.696526212, 12.595026394, -5.5),
    ]]
    fillet(fillet1_edges, radius=FILLET1_R)

    # Sketch8<2> → Cut-Extrude5 (cut, through all)
    with SkipClean():  # the faces are left unmerged after this step: merging them gives an invalid solid
        with BuildSketch(Plane(origin=(0, 0, 0), x_dir=(-1, 0, 0), z_dir=(0, 0, -1))):
            with Locations(Location((-24.356964481, 14.0625, 0), (0, 0, 180))):
                Circle(SKETCH8_2_R)
        cut_extrude5 = extrude(amount=-CUT_EXTRUDE5_DEPTH, mode=Mode.SUBTRACT)

    # CirPattern3: Boss-Extrude6, Cut-Extrude5 ×3 about axis
    cirpattern3_axis = Axis((0, 0, 0), (0, 0, 1))
    add([boss_extrude6.rotate(cirpattern3_axis, i * 360 / CIRPATTERN3_COUNT) for i in range(1, CIRPATTERN3_COUNT)])
    add([cut_extrude5.rotate(cirpattern3_axis, i * 360 / CIRPATTERN3_COUNT) for i in range(1, CIRPATTERN3_COUNT)], mode=Mode.SUBTRACT)

    # Fillet1 of CirPattern3
    fillet1_of_cirpattern3_edges = [part.edges().sort_by_distance(p)[0] for p in [
        (-34.699562443, 10.047685865, -5.5),
        (-26.05133243, 25.026859644, -5.5),
        (-15.696526212, 12.595026394, -5.5),
        (-18.755875925, 7.296077254, -5.5),
        (8.648230013, -35.074545509, -5.5),
        (-8.648230013, -35.074545509, -5.5),
        (-3.059349712, -19.891103648, -5.5),
        (3.059349712, -19.891103648, -5.5),
    ]]
    fillet(fillet1_of_cirpattern3_edges, radius=FILLET1_OF_CIRPATTERN3_R)

    # CirPattern1: Cut-Extrude3 ×6 about axis, 2 skipped
    cirpattern1_axis = Axis((0, 0, 0), (0, 0, 1))
    add([cut_extrude3.rotate(cirpattern1_axis, i * 360 / CIRPATTERN1_COUNT) for i in range(1, CIRPATTERN1_COUNT) if i not in (2, 4)], mode=Mode.SUBTRACT)

    # Sketch6<2> → Boss-Extrude7 (add)
    with BuildSketch(Plane.XY.offset(4)):
        with Locations((0, 28.125)):
            Circle(SKETCH6_2_R)
        with Locations(Location((0, 28.125, 0), (0, 0, 180))):
            Circle(SKETCH6_2_R_2, mode=Mode.SUBTRACT)
    extrude(amount=-BOSS_EXTRUDE7_DEPTH)


solid = part.part
